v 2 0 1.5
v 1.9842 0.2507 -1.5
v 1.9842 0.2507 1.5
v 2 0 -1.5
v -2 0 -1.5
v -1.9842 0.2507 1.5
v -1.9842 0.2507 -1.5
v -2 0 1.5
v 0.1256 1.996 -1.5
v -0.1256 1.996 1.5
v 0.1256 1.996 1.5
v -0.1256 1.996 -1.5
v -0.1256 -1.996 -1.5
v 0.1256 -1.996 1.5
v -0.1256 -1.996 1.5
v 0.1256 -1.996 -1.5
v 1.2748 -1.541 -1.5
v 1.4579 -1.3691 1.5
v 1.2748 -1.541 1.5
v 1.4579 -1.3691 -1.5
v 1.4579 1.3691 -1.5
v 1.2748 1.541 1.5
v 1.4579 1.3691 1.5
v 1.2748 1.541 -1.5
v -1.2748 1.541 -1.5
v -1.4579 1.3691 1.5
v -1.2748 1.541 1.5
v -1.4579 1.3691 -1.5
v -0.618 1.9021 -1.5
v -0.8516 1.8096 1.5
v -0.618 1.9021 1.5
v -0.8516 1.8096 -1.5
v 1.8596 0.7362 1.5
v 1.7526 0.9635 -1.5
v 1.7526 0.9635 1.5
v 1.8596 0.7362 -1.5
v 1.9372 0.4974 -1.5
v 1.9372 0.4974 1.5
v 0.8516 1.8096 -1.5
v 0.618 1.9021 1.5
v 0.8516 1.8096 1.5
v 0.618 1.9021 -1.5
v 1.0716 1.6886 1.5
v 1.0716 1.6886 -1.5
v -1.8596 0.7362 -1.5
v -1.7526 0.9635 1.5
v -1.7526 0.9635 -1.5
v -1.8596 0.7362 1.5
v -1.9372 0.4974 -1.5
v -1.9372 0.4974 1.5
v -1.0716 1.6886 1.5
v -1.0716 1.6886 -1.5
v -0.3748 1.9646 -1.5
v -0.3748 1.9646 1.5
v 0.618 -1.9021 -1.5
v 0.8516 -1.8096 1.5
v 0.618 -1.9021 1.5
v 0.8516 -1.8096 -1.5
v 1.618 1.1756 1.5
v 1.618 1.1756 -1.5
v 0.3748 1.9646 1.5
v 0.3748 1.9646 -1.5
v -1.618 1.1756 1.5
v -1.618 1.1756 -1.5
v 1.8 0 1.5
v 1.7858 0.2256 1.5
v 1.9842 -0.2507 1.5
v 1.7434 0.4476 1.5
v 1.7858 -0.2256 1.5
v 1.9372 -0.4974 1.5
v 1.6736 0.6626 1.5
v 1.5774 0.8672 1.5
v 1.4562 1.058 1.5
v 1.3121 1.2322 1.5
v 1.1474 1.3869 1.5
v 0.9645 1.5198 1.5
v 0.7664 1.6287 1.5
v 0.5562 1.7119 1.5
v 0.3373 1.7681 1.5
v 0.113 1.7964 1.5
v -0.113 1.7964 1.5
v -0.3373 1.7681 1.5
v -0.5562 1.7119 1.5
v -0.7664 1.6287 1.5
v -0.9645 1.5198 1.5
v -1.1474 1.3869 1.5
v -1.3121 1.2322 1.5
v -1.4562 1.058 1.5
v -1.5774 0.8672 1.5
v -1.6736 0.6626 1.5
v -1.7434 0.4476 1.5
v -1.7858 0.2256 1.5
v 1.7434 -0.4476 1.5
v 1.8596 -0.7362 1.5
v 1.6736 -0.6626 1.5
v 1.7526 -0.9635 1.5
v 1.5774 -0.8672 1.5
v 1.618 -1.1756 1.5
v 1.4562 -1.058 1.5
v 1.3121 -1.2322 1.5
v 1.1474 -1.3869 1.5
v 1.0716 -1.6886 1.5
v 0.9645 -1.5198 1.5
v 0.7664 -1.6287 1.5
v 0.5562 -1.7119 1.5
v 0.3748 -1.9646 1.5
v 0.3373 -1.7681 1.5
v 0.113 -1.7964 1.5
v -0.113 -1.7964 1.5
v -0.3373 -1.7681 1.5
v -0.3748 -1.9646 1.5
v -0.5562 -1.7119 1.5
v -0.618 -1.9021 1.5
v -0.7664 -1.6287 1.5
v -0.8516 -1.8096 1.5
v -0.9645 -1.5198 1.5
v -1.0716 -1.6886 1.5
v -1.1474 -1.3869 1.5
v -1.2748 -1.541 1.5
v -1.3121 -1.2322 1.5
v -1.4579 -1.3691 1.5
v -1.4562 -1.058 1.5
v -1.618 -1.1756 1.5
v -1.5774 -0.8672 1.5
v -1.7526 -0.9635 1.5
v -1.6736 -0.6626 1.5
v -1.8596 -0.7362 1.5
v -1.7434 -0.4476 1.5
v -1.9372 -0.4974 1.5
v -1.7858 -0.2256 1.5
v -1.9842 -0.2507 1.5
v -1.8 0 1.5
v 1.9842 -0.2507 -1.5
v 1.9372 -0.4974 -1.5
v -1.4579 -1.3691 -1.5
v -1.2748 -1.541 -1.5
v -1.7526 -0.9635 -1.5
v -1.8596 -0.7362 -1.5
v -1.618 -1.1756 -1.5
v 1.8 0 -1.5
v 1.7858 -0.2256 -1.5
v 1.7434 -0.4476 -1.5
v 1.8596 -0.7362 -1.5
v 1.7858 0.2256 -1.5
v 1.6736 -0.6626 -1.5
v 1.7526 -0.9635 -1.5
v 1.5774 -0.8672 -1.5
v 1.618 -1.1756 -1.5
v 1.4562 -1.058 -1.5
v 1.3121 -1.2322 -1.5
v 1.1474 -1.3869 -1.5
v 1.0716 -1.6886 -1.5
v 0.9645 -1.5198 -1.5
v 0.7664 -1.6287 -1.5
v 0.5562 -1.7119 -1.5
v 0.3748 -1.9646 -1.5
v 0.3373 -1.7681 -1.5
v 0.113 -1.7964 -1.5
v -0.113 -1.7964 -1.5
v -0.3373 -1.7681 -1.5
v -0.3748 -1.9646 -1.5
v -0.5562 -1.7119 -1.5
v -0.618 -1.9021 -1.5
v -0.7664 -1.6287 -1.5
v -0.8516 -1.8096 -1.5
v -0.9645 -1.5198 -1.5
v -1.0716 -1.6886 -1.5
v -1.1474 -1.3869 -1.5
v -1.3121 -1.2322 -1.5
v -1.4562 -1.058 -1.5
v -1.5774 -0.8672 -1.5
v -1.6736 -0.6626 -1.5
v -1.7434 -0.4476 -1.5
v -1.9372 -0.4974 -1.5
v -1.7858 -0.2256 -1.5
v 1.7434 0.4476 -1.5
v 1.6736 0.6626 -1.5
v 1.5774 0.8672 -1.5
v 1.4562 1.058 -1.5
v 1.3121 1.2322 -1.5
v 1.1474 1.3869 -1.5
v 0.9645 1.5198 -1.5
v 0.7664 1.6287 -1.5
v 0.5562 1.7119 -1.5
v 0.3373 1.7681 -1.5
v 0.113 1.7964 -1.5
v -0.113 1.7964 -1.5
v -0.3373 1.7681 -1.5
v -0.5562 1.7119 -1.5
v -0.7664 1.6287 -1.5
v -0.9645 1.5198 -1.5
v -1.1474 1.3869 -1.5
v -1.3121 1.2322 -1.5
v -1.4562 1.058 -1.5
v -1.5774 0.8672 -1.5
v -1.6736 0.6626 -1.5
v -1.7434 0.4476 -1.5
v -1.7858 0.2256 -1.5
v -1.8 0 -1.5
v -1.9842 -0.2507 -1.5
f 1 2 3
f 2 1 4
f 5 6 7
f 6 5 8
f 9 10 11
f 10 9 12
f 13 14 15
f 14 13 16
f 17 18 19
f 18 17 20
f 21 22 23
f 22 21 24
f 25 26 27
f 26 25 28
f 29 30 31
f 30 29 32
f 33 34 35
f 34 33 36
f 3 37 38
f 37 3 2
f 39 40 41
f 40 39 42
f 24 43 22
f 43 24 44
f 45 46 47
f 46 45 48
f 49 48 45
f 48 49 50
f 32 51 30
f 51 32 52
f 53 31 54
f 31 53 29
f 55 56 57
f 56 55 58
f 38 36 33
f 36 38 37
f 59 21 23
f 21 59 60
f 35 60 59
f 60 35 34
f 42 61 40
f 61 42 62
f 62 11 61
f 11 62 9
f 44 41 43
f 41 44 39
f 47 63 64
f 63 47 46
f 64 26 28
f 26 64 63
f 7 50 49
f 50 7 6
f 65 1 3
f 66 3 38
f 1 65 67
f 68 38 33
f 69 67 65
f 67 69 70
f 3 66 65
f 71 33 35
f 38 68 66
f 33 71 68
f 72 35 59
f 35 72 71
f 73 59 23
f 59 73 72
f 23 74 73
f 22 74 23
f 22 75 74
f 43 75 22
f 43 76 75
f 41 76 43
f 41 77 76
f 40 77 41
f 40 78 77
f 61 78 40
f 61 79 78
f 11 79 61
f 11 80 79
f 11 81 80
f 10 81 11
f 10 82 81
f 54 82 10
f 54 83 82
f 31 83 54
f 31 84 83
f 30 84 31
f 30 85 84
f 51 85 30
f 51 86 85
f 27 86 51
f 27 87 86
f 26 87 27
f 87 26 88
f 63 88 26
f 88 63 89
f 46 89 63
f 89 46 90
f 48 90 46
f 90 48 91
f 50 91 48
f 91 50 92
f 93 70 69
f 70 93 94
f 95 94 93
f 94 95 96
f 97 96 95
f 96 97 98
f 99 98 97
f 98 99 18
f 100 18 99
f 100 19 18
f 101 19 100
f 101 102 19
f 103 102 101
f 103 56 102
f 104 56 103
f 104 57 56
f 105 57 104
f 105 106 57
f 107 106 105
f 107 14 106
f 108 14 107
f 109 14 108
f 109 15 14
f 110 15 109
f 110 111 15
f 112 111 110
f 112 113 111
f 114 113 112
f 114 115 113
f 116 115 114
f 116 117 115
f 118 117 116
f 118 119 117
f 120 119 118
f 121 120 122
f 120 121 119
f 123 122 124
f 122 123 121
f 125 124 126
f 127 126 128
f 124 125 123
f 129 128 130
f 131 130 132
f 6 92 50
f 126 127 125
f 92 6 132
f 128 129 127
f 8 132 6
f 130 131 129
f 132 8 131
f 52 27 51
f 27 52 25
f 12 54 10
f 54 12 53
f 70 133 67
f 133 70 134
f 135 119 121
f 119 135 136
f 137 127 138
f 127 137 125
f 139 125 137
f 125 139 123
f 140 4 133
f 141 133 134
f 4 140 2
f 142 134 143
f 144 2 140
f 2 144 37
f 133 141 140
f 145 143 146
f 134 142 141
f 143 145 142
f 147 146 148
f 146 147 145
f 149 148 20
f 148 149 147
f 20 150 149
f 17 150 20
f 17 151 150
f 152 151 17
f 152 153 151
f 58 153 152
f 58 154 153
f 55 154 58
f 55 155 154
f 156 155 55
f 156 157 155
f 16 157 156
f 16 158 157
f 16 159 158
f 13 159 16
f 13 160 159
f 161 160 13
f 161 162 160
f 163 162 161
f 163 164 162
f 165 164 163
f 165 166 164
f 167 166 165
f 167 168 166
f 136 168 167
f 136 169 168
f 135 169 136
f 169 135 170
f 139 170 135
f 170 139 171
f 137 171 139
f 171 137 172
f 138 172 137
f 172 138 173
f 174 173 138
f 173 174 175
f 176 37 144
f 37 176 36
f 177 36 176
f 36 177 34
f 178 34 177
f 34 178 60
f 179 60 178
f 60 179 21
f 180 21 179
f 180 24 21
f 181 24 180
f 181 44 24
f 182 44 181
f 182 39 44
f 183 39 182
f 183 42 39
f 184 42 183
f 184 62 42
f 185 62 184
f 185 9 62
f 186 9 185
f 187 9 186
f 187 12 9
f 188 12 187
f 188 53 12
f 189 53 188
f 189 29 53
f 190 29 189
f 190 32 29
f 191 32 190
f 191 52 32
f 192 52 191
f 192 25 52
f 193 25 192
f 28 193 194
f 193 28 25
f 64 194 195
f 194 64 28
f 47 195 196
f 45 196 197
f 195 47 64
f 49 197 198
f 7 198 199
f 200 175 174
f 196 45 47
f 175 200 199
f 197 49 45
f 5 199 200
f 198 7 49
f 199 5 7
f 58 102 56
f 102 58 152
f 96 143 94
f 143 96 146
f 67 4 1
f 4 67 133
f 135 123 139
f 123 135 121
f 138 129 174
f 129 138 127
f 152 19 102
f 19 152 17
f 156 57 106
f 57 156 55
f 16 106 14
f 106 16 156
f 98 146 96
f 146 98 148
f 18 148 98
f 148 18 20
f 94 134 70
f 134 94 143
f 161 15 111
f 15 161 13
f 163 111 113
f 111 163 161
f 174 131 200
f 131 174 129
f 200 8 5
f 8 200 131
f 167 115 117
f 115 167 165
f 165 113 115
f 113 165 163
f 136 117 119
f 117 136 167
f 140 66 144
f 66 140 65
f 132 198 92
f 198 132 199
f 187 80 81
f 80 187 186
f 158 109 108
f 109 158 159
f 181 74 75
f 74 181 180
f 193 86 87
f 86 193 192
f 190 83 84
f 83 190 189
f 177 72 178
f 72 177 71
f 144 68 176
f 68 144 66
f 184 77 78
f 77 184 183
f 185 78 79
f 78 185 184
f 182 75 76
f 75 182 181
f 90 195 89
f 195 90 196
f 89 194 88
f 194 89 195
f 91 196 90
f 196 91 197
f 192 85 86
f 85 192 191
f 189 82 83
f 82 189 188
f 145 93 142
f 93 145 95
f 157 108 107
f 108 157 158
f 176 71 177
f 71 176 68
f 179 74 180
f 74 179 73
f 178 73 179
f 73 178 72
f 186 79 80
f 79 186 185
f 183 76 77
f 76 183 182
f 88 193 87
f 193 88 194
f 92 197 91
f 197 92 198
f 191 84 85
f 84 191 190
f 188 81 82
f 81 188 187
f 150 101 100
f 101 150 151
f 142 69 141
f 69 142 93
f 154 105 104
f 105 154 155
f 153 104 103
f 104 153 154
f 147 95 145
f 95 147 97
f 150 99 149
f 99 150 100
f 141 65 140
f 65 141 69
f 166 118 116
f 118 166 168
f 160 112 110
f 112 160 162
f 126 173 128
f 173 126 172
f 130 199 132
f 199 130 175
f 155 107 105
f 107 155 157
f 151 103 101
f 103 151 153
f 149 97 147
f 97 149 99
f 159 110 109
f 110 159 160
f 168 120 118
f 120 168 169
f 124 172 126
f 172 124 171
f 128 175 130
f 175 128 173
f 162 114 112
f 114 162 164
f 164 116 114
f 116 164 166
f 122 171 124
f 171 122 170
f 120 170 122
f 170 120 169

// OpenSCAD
$fn = 50;


difference() {
	union() {
		translate(v = [0, 0, -1.5000000000]) {
			cylinder(h = 3, r = 2.0000000000);
		}
	}
	union() {
		translate(v = [0, 0, -100.0000000000]) {
			cylinder(h = 200, r = 1.8000000000);
		}
	}
}
